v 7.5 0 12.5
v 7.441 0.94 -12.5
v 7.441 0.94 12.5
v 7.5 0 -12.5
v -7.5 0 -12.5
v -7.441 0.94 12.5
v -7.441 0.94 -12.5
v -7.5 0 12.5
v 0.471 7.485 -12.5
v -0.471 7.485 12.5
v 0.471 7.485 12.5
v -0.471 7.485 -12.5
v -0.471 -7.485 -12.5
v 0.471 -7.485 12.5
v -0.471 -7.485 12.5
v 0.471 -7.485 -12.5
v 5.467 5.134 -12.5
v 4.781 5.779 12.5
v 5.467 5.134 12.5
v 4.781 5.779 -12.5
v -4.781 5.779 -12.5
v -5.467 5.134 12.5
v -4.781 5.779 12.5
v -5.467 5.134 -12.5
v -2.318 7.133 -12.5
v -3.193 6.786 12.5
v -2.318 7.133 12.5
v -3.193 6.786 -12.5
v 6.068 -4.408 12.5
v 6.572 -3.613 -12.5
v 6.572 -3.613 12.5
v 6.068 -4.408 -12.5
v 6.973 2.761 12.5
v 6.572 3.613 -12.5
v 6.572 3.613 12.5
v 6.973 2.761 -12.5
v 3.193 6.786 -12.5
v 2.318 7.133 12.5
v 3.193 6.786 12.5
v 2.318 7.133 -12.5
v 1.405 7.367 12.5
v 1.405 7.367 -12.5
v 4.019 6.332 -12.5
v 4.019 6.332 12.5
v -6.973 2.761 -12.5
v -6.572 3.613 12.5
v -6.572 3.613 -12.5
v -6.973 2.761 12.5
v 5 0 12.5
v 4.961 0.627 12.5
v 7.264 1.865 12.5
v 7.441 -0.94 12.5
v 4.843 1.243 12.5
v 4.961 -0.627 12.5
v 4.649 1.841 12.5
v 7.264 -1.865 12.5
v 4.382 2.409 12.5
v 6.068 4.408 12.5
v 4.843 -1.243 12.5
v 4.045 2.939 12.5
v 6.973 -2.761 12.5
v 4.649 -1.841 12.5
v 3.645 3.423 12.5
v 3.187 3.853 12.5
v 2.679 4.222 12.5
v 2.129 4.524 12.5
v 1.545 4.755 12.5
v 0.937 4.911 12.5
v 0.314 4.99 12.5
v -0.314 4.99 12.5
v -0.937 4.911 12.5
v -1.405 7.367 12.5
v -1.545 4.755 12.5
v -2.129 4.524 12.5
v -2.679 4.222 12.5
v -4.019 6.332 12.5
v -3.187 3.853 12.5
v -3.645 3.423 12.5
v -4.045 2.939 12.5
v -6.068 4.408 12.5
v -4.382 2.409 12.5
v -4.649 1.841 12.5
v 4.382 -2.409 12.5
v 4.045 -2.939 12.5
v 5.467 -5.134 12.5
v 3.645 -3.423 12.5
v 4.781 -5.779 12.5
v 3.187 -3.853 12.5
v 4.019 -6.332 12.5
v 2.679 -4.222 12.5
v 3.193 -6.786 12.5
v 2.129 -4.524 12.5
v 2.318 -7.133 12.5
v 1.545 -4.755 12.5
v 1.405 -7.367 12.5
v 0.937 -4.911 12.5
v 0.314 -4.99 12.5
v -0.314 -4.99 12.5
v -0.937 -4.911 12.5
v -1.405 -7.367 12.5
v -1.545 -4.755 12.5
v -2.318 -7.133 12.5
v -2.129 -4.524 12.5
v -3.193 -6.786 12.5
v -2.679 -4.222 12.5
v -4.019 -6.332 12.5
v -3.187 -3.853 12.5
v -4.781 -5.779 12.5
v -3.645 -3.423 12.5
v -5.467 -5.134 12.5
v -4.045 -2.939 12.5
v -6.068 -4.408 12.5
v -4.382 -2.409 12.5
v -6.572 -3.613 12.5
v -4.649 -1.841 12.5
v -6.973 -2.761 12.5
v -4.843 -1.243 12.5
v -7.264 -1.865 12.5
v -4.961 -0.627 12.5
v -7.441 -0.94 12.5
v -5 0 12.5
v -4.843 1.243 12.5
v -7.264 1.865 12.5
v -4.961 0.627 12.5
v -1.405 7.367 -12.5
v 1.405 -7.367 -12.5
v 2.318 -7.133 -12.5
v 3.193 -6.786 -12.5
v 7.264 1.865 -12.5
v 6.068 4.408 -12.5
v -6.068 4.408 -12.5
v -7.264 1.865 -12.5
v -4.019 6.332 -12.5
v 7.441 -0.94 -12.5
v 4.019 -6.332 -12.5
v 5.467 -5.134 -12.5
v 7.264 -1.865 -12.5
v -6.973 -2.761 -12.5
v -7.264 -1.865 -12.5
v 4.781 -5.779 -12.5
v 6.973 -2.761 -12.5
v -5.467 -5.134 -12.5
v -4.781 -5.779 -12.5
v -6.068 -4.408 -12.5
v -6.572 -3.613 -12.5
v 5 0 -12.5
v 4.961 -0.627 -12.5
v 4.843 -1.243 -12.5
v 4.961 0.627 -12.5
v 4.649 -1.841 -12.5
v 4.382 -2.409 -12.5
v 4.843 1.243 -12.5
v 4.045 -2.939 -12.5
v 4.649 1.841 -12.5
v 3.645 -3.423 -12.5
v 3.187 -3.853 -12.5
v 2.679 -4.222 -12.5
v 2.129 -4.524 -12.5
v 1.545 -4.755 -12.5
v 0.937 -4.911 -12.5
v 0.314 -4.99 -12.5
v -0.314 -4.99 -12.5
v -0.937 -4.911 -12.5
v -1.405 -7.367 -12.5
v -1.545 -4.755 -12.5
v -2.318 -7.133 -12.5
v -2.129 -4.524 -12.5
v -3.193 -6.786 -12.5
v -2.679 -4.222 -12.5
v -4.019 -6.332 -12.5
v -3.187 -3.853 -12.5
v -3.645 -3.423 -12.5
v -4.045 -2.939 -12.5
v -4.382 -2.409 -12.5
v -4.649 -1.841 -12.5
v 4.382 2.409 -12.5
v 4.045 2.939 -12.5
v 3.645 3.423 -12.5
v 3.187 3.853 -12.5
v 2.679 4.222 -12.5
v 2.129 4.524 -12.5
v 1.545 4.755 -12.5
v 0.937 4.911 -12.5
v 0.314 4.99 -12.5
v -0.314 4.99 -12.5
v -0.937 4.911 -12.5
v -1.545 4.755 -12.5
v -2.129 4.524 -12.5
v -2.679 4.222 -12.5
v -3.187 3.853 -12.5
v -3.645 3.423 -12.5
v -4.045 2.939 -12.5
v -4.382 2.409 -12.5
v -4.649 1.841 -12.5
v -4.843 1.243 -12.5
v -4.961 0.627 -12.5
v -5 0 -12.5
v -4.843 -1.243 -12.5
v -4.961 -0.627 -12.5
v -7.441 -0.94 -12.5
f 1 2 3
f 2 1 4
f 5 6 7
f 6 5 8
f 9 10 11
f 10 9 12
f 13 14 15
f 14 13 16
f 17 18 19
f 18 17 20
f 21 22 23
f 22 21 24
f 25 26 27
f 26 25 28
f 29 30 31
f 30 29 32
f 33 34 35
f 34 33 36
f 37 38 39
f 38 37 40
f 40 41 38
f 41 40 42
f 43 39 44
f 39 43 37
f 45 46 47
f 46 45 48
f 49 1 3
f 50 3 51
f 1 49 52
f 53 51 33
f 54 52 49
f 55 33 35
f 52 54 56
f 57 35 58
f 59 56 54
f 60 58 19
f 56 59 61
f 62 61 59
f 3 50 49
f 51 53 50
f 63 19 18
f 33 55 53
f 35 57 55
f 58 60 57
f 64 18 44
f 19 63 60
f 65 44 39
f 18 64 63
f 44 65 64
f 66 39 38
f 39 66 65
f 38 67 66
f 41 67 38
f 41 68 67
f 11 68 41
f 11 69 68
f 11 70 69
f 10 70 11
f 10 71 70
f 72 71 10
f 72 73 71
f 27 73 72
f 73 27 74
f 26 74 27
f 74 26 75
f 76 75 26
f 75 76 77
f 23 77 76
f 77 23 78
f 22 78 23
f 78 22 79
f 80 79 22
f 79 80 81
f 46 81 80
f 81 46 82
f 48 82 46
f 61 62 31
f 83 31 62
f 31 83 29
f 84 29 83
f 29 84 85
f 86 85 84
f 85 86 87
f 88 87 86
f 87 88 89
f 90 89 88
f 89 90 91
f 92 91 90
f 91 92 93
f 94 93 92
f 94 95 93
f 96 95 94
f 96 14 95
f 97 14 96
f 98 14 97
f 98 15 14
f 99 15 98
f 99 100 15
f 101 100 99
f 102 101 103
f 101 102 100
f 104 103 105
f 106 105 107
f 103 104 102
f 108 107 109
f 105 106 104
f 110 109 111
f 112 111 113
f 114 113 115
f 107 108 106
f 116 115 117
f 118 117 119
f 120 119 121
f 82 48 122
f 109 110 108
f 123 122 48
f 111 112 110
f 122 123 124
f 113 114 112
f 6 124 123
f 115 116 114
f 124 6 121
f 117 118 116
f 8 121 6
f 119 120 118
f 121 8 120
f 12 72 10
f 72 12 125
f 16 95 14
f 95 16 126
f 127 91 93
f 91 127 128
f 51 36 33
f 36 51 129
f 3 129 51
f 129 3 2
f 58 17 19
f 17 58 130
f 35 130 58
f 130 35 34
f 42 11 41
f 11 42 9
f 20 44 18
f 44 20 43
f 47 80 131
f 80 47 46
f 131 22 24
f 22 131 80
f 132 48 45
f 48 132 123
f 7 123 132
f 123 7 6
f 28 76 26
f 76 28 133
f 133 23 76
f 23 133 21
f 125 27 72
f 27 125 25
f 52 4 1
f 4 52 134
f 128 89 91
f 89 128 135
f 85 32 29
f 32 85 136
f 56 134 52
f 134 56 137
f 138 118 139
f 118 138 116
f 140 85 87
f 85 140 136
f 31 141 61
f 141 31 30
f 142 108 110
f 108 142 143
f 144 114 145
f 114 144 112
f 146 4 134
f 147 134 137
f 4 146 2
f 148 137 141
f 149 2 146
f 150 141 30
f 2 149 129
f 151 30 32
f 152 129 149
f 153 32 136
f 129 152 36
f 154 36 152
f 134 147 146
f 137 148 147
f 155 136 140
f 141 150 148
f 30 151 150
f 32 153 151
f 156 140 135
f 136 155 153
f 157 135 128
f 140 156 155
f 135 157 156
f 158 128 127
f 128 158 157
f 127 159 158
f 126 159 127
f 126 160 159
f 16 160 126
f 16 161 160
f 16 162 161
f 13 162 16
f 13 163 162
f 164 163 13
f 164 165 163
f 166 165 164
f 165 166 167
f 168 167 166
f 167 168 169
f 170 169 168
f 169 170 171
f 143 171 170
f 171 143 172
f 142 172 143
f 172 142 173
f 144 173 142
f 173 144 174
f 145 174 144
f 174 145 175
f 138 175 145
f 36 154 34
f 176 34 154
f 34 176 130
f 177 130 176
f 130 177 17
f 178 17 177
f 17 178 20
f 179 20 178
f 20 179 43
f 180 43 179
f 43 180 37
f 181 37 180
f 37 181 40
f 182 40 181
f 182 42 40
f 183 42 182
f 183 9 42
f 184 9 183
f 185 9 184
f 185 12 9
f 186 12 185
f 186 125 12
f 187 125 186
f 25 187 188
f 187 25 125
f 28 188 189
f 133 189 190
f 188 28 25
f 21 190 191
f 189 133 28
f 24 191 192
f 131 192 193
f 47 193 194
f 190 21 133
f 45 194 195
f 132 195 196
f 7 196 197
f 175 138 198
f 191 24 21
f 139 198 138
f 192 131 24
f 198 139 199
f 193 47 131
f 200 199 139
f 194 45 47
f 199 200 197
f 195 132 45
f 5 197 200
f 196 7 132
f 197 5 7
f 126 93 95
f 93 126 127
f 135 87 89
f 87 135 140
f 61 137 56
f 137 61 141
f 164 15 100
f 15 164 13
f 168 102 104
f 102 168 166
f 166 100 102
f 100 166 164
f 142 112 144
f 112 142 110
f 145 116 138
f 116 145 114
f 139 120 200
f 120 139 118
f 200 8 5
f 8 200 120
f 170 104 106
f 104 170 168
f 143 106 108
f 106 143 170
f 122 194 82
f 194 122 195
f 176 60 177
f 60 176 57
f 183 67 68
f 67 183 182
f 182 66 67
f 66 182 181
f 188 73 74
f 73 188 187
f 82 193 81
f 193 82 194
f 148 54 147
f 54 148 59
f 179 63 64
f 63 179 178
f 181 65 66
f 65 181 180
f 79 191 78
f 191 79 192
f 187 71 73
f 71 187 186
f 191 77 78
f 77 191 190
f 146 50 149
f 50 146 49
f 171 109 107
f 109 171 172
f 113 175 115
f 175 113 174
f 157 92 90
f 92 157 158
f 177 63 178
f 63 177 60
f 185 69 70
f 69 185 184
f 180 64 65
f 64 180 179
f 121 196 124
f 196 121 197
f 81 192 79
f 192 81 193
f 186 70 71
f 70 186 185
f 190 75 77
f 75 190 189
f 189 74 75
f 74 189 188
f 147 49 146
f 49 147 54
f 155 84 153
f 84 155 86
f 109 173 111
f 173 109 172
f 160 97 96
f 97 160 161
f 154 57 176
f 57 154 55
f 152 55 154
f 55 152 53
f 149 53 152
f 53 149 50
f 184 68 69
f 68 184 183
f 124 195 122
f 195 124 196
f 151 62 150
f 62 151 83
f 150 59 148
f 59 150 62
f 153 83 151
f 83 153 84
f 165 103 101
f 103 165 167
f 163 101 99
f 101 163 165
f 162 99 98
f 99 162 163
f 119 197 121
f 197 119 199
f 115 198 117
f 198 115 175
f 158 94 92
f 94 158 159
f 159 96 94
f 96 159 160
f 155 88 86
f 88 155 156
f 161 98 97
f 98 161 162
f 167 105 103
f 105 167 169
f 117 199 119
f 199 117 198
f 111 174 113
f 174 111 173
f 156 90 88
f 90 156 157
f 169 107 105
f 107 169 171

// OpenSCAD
$fn = 50;


difference() {
	union() {
		translate(v = [0, 0, -12.5000000000]) {
			cylinder(h = 25, r = 7.5000000000);
		}
	}
	union() {
		translate(v = [0, 0, -100.0000000000]) {
			cylinder(h = 200, r = 5);
		}
	}
}
